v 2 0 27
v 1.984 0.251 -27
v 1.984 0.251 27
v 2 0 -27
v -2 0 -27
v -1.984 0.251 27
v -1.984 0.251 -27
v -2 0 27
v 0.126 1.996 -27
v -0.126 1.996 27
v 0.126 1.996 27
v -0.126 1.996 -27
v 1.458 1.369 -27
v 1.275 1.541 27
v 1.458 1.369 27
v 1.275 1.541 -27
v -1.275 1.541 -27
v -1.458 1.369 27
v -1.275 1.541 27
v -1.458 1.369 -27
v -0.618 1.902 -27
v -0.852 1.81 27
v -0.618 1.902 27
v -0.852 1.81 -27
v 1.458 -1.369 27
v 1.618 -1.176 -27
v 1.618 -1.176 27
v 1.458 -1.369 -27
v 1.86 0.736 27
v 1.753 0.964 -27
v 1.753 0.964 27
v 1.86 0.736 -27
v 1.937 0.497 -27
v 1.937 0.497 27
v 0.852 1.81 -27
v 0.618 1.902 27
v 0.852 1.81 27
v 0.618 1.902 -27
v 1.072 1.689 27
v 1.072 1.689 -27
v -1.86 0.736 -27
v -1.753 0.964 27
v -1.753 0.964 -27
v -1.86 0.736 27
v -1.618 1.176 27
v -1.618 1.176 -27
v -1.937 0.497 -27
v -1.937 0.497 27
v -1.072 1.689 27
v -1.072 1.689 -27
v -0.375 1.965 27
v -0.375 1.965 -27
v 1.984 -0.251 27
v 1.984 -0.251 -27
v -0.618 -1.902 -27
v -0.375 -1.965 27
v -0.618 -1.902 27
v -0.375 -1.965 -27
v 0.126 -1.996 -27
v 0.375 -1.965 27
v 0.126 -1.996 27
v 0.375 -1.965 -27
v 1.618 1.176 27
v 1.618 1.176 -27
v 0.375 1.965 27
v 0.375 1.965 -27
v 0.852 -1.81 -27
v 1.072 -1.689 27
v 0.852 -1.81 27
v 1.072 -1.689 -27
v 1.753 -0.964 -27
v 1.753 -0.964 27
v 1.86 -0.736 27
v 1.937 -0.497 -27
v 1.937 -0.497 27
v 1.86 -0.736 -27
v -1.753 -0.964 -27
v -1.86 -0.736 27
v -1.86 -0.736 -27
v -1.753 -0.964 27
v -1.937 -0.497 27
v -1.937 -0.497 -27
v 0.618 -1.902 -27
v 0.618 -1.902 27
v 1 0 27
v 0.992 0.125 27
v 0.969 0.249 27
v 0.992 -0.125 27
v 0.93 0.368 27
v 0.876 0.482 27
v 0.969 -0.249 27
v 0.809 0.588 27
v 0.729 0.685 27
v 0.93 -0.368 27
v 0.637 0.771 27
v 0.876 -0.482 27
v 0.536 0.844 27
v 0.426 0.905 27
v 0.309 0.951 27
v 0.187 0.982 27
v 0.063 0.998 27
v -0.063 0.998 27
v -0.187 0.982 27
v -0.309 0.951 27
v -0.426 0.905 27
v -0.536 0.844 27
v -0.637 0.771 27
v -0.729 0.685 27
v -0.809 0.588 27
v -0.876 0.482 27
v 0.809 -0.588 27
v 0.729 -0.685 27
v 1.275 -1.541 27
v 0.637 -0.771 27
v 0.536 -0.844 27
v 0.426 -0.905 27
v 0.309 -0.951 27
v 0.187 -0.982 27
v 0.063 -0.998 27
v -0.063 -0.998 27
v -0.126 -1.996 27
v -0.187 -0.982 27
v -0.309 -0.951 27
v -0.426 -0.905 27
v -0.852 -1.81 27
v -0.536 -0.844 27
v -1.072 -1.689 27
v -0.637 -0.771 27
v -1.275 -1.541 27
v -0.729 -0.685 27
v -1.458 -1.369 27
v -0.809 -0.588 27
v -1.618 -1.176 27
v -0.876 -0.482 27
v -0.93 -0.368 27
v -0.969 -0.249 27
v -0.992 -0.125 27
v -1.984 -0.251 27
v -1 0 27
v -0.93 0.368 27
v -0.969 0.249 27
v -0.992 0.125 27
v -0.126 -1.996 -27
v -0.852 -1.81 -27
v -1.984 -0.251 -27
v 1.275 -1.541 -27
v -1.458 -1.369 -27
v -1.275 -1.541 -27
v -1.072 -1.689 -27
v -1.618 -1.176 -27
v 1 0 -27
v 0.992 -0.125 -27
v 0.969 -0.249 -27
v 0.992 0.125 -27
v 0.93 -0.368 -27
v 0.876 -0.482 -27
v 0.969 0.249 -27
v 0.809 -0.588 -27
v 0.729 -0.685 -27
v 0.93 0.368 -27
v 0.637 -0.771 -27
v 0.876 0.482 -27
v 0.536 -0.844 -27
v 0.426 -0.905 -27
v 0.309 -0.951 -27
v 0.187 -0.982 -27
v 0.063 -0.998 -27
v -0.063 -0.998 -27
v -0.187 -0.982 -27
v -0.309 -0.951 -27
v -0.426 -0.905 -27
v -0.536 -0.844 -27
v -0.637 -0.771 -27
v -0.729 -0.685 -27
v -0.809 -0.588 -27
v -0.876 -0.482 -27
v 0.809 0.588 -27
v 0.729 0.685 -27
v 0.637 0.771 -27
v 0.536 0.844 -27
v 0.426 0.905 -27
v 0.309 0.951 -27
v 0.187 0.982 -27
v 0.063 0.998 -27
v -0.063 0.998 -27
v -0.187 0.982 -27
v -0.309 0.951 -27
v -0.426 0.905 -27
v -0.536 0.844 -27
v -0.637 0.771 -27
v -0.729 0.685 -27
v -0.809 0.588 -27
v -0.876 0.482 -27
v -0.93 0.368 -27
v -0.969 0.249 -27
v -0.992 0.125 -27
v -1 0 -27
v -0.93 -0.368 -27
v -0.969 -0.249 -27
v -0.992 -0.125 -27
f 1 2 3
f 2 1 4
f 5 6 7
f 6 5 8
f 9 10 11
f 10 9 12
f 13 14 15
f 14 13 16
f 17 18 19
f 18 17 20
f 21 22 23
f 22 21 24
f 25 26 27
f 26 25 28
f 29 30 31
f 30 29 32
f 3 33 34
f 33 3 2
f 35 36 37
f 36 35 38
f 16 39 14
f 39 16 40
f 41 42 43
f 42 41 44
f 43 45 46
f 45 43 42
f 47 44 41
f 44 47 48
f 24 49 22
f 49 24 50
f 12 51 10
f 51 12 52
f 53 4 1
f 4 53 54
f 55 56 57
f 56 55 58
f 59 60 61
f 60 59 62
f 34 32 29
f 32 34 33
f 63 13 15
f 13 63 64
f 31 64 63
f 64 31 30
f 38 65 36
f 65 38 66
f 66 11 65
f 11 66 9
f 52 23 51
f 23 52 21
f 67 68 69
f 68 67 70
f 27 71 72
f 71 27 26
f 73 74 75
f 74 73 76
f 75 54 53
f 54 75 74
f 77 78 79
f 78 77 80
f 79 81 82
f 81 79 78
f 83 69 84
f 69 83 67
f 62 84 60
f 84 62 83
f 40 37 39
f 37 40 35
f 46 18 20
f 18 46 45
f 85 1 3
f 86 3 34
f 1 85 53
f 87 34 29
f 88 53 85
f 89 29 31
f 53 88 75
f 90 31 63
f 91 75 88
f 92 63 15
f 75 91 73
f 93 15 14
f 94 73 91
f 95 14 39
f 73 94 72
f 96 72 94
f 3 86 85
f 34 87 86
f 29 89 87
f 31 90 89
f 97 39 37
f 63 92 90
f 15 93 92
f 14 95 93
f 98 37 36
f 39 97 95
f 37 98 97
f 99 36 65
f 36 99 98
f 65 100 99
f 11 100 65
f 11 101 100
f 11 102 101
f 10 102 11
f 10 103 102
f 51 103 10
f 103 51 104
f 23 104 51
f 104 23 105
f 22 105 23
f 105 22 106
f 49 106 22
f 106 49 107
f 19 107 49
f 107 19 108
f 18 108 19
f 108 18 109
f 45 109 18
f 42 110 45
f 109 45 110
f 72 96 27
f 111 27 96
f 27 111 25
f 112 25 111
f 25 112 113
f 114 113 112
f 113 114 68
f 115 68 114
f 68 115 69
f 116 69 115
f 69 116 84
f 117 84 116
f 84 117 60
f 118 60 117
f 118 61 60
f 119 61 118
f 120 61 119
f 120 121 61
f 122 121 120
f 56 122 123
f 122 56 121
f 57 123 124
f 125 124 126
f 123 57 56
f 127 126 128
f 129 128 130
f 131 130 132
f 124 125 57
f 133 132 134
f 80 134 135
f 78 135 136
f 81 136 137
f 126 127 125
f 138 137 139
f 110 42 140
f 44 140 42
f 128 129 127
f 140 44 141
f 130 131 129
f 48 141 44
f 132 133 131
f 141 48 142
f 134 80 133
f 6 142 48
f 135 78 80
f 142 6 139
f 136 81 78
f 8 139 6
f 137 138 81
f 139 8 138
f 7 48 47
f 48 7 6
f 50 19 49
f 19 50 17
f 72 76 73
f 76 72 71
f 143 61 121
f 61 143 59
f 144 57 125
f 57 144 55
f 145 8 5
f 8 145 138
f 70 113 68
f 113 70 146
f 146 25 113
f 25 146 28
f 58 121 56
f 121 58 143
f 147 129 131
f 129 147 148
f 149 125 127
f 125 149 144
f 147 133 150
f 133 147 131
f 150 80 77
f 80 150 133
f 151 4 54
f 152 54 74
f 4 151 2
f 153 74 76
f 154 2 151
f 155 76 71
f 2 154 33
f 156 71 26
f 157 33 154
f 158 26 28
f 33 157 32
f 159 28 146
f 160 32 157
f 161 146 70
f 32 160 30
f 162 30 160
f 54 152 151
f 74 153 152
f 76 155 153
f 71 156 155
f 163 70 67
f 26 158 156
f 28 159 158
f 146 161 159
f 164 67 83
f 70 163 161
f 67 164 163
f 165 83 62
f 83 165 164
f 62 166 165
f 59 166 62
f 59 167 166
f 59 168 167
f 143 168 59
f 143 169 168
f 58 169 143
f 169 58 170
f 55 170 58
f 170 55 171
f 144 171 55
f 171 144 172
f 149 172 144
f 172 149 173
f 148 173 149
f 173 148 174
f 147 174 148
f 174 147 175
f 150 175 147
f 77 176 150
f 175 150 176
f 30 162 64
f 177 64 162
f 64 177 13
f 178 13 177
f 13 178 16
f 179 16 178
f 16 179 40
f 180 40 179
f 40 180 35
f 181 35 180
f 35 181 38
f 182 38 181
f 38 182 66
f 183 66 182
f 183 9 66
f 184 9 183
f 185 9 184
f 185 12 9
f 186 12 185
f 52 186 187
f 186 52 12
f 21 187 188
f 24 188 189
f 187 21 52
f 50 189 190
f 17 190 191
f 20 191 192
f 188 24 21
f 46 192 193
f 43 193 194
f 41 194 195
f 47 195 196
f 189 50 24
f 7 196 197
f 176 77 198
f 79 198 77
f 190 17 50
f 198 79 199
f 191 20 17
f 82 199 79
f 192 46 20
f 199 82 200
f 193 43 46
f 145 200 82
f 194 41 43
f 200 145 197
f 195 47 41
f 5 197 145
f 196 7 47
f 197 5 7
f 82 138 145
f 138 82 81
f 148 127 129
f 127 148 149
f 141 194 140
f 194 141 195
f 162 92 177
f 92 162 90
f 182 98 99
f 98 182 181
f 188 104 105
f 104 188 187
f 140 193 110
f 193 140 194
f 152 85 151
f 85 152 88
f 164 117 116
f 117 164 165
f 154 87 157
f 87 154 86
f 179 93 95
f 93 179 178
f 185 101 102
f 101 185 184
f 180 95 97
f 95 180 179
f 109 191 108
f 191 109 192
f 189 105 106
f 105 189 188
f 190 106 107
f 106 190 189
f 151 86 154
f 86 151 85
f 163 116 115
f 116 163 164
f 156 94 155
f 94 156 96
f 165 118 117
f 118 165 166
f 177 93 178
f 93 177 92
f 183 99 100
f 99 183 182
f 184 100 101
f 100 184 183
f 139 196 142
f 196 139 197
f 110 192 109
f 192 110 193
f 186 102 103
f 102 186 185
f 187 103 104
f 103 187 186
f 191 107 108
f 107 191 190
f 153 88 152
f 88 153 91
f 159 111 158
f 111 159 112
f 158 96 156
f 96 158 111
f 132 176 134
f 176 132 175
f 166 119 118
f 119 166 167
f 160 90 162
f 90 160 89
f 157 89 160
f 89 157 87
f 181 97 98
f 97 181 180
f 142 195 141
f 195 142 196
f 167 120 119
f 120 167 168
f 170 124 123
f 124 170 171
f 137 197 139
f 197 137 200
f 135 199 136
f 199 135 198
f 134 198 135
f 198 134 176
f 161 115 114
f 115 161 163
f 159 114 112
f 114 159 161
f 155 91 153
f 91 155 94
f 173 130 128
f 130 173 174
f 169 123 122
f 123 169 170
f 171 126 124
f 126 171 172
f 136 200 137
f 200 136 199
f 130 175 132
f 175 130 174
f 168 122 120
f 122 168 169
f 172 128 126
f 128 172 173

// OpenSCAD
$fn = 50;


difference() {
	union() {
		translate(v = [0, 0, -27.0000000000]) {
			cylinder(h = 54, r = 2.0000000000);
		}
	}
	union() {
		translate(v = [0, 0, -100.0000000000]) {
			cylinder(h = 200, r = 1.0000000000);
		}
	}
}
